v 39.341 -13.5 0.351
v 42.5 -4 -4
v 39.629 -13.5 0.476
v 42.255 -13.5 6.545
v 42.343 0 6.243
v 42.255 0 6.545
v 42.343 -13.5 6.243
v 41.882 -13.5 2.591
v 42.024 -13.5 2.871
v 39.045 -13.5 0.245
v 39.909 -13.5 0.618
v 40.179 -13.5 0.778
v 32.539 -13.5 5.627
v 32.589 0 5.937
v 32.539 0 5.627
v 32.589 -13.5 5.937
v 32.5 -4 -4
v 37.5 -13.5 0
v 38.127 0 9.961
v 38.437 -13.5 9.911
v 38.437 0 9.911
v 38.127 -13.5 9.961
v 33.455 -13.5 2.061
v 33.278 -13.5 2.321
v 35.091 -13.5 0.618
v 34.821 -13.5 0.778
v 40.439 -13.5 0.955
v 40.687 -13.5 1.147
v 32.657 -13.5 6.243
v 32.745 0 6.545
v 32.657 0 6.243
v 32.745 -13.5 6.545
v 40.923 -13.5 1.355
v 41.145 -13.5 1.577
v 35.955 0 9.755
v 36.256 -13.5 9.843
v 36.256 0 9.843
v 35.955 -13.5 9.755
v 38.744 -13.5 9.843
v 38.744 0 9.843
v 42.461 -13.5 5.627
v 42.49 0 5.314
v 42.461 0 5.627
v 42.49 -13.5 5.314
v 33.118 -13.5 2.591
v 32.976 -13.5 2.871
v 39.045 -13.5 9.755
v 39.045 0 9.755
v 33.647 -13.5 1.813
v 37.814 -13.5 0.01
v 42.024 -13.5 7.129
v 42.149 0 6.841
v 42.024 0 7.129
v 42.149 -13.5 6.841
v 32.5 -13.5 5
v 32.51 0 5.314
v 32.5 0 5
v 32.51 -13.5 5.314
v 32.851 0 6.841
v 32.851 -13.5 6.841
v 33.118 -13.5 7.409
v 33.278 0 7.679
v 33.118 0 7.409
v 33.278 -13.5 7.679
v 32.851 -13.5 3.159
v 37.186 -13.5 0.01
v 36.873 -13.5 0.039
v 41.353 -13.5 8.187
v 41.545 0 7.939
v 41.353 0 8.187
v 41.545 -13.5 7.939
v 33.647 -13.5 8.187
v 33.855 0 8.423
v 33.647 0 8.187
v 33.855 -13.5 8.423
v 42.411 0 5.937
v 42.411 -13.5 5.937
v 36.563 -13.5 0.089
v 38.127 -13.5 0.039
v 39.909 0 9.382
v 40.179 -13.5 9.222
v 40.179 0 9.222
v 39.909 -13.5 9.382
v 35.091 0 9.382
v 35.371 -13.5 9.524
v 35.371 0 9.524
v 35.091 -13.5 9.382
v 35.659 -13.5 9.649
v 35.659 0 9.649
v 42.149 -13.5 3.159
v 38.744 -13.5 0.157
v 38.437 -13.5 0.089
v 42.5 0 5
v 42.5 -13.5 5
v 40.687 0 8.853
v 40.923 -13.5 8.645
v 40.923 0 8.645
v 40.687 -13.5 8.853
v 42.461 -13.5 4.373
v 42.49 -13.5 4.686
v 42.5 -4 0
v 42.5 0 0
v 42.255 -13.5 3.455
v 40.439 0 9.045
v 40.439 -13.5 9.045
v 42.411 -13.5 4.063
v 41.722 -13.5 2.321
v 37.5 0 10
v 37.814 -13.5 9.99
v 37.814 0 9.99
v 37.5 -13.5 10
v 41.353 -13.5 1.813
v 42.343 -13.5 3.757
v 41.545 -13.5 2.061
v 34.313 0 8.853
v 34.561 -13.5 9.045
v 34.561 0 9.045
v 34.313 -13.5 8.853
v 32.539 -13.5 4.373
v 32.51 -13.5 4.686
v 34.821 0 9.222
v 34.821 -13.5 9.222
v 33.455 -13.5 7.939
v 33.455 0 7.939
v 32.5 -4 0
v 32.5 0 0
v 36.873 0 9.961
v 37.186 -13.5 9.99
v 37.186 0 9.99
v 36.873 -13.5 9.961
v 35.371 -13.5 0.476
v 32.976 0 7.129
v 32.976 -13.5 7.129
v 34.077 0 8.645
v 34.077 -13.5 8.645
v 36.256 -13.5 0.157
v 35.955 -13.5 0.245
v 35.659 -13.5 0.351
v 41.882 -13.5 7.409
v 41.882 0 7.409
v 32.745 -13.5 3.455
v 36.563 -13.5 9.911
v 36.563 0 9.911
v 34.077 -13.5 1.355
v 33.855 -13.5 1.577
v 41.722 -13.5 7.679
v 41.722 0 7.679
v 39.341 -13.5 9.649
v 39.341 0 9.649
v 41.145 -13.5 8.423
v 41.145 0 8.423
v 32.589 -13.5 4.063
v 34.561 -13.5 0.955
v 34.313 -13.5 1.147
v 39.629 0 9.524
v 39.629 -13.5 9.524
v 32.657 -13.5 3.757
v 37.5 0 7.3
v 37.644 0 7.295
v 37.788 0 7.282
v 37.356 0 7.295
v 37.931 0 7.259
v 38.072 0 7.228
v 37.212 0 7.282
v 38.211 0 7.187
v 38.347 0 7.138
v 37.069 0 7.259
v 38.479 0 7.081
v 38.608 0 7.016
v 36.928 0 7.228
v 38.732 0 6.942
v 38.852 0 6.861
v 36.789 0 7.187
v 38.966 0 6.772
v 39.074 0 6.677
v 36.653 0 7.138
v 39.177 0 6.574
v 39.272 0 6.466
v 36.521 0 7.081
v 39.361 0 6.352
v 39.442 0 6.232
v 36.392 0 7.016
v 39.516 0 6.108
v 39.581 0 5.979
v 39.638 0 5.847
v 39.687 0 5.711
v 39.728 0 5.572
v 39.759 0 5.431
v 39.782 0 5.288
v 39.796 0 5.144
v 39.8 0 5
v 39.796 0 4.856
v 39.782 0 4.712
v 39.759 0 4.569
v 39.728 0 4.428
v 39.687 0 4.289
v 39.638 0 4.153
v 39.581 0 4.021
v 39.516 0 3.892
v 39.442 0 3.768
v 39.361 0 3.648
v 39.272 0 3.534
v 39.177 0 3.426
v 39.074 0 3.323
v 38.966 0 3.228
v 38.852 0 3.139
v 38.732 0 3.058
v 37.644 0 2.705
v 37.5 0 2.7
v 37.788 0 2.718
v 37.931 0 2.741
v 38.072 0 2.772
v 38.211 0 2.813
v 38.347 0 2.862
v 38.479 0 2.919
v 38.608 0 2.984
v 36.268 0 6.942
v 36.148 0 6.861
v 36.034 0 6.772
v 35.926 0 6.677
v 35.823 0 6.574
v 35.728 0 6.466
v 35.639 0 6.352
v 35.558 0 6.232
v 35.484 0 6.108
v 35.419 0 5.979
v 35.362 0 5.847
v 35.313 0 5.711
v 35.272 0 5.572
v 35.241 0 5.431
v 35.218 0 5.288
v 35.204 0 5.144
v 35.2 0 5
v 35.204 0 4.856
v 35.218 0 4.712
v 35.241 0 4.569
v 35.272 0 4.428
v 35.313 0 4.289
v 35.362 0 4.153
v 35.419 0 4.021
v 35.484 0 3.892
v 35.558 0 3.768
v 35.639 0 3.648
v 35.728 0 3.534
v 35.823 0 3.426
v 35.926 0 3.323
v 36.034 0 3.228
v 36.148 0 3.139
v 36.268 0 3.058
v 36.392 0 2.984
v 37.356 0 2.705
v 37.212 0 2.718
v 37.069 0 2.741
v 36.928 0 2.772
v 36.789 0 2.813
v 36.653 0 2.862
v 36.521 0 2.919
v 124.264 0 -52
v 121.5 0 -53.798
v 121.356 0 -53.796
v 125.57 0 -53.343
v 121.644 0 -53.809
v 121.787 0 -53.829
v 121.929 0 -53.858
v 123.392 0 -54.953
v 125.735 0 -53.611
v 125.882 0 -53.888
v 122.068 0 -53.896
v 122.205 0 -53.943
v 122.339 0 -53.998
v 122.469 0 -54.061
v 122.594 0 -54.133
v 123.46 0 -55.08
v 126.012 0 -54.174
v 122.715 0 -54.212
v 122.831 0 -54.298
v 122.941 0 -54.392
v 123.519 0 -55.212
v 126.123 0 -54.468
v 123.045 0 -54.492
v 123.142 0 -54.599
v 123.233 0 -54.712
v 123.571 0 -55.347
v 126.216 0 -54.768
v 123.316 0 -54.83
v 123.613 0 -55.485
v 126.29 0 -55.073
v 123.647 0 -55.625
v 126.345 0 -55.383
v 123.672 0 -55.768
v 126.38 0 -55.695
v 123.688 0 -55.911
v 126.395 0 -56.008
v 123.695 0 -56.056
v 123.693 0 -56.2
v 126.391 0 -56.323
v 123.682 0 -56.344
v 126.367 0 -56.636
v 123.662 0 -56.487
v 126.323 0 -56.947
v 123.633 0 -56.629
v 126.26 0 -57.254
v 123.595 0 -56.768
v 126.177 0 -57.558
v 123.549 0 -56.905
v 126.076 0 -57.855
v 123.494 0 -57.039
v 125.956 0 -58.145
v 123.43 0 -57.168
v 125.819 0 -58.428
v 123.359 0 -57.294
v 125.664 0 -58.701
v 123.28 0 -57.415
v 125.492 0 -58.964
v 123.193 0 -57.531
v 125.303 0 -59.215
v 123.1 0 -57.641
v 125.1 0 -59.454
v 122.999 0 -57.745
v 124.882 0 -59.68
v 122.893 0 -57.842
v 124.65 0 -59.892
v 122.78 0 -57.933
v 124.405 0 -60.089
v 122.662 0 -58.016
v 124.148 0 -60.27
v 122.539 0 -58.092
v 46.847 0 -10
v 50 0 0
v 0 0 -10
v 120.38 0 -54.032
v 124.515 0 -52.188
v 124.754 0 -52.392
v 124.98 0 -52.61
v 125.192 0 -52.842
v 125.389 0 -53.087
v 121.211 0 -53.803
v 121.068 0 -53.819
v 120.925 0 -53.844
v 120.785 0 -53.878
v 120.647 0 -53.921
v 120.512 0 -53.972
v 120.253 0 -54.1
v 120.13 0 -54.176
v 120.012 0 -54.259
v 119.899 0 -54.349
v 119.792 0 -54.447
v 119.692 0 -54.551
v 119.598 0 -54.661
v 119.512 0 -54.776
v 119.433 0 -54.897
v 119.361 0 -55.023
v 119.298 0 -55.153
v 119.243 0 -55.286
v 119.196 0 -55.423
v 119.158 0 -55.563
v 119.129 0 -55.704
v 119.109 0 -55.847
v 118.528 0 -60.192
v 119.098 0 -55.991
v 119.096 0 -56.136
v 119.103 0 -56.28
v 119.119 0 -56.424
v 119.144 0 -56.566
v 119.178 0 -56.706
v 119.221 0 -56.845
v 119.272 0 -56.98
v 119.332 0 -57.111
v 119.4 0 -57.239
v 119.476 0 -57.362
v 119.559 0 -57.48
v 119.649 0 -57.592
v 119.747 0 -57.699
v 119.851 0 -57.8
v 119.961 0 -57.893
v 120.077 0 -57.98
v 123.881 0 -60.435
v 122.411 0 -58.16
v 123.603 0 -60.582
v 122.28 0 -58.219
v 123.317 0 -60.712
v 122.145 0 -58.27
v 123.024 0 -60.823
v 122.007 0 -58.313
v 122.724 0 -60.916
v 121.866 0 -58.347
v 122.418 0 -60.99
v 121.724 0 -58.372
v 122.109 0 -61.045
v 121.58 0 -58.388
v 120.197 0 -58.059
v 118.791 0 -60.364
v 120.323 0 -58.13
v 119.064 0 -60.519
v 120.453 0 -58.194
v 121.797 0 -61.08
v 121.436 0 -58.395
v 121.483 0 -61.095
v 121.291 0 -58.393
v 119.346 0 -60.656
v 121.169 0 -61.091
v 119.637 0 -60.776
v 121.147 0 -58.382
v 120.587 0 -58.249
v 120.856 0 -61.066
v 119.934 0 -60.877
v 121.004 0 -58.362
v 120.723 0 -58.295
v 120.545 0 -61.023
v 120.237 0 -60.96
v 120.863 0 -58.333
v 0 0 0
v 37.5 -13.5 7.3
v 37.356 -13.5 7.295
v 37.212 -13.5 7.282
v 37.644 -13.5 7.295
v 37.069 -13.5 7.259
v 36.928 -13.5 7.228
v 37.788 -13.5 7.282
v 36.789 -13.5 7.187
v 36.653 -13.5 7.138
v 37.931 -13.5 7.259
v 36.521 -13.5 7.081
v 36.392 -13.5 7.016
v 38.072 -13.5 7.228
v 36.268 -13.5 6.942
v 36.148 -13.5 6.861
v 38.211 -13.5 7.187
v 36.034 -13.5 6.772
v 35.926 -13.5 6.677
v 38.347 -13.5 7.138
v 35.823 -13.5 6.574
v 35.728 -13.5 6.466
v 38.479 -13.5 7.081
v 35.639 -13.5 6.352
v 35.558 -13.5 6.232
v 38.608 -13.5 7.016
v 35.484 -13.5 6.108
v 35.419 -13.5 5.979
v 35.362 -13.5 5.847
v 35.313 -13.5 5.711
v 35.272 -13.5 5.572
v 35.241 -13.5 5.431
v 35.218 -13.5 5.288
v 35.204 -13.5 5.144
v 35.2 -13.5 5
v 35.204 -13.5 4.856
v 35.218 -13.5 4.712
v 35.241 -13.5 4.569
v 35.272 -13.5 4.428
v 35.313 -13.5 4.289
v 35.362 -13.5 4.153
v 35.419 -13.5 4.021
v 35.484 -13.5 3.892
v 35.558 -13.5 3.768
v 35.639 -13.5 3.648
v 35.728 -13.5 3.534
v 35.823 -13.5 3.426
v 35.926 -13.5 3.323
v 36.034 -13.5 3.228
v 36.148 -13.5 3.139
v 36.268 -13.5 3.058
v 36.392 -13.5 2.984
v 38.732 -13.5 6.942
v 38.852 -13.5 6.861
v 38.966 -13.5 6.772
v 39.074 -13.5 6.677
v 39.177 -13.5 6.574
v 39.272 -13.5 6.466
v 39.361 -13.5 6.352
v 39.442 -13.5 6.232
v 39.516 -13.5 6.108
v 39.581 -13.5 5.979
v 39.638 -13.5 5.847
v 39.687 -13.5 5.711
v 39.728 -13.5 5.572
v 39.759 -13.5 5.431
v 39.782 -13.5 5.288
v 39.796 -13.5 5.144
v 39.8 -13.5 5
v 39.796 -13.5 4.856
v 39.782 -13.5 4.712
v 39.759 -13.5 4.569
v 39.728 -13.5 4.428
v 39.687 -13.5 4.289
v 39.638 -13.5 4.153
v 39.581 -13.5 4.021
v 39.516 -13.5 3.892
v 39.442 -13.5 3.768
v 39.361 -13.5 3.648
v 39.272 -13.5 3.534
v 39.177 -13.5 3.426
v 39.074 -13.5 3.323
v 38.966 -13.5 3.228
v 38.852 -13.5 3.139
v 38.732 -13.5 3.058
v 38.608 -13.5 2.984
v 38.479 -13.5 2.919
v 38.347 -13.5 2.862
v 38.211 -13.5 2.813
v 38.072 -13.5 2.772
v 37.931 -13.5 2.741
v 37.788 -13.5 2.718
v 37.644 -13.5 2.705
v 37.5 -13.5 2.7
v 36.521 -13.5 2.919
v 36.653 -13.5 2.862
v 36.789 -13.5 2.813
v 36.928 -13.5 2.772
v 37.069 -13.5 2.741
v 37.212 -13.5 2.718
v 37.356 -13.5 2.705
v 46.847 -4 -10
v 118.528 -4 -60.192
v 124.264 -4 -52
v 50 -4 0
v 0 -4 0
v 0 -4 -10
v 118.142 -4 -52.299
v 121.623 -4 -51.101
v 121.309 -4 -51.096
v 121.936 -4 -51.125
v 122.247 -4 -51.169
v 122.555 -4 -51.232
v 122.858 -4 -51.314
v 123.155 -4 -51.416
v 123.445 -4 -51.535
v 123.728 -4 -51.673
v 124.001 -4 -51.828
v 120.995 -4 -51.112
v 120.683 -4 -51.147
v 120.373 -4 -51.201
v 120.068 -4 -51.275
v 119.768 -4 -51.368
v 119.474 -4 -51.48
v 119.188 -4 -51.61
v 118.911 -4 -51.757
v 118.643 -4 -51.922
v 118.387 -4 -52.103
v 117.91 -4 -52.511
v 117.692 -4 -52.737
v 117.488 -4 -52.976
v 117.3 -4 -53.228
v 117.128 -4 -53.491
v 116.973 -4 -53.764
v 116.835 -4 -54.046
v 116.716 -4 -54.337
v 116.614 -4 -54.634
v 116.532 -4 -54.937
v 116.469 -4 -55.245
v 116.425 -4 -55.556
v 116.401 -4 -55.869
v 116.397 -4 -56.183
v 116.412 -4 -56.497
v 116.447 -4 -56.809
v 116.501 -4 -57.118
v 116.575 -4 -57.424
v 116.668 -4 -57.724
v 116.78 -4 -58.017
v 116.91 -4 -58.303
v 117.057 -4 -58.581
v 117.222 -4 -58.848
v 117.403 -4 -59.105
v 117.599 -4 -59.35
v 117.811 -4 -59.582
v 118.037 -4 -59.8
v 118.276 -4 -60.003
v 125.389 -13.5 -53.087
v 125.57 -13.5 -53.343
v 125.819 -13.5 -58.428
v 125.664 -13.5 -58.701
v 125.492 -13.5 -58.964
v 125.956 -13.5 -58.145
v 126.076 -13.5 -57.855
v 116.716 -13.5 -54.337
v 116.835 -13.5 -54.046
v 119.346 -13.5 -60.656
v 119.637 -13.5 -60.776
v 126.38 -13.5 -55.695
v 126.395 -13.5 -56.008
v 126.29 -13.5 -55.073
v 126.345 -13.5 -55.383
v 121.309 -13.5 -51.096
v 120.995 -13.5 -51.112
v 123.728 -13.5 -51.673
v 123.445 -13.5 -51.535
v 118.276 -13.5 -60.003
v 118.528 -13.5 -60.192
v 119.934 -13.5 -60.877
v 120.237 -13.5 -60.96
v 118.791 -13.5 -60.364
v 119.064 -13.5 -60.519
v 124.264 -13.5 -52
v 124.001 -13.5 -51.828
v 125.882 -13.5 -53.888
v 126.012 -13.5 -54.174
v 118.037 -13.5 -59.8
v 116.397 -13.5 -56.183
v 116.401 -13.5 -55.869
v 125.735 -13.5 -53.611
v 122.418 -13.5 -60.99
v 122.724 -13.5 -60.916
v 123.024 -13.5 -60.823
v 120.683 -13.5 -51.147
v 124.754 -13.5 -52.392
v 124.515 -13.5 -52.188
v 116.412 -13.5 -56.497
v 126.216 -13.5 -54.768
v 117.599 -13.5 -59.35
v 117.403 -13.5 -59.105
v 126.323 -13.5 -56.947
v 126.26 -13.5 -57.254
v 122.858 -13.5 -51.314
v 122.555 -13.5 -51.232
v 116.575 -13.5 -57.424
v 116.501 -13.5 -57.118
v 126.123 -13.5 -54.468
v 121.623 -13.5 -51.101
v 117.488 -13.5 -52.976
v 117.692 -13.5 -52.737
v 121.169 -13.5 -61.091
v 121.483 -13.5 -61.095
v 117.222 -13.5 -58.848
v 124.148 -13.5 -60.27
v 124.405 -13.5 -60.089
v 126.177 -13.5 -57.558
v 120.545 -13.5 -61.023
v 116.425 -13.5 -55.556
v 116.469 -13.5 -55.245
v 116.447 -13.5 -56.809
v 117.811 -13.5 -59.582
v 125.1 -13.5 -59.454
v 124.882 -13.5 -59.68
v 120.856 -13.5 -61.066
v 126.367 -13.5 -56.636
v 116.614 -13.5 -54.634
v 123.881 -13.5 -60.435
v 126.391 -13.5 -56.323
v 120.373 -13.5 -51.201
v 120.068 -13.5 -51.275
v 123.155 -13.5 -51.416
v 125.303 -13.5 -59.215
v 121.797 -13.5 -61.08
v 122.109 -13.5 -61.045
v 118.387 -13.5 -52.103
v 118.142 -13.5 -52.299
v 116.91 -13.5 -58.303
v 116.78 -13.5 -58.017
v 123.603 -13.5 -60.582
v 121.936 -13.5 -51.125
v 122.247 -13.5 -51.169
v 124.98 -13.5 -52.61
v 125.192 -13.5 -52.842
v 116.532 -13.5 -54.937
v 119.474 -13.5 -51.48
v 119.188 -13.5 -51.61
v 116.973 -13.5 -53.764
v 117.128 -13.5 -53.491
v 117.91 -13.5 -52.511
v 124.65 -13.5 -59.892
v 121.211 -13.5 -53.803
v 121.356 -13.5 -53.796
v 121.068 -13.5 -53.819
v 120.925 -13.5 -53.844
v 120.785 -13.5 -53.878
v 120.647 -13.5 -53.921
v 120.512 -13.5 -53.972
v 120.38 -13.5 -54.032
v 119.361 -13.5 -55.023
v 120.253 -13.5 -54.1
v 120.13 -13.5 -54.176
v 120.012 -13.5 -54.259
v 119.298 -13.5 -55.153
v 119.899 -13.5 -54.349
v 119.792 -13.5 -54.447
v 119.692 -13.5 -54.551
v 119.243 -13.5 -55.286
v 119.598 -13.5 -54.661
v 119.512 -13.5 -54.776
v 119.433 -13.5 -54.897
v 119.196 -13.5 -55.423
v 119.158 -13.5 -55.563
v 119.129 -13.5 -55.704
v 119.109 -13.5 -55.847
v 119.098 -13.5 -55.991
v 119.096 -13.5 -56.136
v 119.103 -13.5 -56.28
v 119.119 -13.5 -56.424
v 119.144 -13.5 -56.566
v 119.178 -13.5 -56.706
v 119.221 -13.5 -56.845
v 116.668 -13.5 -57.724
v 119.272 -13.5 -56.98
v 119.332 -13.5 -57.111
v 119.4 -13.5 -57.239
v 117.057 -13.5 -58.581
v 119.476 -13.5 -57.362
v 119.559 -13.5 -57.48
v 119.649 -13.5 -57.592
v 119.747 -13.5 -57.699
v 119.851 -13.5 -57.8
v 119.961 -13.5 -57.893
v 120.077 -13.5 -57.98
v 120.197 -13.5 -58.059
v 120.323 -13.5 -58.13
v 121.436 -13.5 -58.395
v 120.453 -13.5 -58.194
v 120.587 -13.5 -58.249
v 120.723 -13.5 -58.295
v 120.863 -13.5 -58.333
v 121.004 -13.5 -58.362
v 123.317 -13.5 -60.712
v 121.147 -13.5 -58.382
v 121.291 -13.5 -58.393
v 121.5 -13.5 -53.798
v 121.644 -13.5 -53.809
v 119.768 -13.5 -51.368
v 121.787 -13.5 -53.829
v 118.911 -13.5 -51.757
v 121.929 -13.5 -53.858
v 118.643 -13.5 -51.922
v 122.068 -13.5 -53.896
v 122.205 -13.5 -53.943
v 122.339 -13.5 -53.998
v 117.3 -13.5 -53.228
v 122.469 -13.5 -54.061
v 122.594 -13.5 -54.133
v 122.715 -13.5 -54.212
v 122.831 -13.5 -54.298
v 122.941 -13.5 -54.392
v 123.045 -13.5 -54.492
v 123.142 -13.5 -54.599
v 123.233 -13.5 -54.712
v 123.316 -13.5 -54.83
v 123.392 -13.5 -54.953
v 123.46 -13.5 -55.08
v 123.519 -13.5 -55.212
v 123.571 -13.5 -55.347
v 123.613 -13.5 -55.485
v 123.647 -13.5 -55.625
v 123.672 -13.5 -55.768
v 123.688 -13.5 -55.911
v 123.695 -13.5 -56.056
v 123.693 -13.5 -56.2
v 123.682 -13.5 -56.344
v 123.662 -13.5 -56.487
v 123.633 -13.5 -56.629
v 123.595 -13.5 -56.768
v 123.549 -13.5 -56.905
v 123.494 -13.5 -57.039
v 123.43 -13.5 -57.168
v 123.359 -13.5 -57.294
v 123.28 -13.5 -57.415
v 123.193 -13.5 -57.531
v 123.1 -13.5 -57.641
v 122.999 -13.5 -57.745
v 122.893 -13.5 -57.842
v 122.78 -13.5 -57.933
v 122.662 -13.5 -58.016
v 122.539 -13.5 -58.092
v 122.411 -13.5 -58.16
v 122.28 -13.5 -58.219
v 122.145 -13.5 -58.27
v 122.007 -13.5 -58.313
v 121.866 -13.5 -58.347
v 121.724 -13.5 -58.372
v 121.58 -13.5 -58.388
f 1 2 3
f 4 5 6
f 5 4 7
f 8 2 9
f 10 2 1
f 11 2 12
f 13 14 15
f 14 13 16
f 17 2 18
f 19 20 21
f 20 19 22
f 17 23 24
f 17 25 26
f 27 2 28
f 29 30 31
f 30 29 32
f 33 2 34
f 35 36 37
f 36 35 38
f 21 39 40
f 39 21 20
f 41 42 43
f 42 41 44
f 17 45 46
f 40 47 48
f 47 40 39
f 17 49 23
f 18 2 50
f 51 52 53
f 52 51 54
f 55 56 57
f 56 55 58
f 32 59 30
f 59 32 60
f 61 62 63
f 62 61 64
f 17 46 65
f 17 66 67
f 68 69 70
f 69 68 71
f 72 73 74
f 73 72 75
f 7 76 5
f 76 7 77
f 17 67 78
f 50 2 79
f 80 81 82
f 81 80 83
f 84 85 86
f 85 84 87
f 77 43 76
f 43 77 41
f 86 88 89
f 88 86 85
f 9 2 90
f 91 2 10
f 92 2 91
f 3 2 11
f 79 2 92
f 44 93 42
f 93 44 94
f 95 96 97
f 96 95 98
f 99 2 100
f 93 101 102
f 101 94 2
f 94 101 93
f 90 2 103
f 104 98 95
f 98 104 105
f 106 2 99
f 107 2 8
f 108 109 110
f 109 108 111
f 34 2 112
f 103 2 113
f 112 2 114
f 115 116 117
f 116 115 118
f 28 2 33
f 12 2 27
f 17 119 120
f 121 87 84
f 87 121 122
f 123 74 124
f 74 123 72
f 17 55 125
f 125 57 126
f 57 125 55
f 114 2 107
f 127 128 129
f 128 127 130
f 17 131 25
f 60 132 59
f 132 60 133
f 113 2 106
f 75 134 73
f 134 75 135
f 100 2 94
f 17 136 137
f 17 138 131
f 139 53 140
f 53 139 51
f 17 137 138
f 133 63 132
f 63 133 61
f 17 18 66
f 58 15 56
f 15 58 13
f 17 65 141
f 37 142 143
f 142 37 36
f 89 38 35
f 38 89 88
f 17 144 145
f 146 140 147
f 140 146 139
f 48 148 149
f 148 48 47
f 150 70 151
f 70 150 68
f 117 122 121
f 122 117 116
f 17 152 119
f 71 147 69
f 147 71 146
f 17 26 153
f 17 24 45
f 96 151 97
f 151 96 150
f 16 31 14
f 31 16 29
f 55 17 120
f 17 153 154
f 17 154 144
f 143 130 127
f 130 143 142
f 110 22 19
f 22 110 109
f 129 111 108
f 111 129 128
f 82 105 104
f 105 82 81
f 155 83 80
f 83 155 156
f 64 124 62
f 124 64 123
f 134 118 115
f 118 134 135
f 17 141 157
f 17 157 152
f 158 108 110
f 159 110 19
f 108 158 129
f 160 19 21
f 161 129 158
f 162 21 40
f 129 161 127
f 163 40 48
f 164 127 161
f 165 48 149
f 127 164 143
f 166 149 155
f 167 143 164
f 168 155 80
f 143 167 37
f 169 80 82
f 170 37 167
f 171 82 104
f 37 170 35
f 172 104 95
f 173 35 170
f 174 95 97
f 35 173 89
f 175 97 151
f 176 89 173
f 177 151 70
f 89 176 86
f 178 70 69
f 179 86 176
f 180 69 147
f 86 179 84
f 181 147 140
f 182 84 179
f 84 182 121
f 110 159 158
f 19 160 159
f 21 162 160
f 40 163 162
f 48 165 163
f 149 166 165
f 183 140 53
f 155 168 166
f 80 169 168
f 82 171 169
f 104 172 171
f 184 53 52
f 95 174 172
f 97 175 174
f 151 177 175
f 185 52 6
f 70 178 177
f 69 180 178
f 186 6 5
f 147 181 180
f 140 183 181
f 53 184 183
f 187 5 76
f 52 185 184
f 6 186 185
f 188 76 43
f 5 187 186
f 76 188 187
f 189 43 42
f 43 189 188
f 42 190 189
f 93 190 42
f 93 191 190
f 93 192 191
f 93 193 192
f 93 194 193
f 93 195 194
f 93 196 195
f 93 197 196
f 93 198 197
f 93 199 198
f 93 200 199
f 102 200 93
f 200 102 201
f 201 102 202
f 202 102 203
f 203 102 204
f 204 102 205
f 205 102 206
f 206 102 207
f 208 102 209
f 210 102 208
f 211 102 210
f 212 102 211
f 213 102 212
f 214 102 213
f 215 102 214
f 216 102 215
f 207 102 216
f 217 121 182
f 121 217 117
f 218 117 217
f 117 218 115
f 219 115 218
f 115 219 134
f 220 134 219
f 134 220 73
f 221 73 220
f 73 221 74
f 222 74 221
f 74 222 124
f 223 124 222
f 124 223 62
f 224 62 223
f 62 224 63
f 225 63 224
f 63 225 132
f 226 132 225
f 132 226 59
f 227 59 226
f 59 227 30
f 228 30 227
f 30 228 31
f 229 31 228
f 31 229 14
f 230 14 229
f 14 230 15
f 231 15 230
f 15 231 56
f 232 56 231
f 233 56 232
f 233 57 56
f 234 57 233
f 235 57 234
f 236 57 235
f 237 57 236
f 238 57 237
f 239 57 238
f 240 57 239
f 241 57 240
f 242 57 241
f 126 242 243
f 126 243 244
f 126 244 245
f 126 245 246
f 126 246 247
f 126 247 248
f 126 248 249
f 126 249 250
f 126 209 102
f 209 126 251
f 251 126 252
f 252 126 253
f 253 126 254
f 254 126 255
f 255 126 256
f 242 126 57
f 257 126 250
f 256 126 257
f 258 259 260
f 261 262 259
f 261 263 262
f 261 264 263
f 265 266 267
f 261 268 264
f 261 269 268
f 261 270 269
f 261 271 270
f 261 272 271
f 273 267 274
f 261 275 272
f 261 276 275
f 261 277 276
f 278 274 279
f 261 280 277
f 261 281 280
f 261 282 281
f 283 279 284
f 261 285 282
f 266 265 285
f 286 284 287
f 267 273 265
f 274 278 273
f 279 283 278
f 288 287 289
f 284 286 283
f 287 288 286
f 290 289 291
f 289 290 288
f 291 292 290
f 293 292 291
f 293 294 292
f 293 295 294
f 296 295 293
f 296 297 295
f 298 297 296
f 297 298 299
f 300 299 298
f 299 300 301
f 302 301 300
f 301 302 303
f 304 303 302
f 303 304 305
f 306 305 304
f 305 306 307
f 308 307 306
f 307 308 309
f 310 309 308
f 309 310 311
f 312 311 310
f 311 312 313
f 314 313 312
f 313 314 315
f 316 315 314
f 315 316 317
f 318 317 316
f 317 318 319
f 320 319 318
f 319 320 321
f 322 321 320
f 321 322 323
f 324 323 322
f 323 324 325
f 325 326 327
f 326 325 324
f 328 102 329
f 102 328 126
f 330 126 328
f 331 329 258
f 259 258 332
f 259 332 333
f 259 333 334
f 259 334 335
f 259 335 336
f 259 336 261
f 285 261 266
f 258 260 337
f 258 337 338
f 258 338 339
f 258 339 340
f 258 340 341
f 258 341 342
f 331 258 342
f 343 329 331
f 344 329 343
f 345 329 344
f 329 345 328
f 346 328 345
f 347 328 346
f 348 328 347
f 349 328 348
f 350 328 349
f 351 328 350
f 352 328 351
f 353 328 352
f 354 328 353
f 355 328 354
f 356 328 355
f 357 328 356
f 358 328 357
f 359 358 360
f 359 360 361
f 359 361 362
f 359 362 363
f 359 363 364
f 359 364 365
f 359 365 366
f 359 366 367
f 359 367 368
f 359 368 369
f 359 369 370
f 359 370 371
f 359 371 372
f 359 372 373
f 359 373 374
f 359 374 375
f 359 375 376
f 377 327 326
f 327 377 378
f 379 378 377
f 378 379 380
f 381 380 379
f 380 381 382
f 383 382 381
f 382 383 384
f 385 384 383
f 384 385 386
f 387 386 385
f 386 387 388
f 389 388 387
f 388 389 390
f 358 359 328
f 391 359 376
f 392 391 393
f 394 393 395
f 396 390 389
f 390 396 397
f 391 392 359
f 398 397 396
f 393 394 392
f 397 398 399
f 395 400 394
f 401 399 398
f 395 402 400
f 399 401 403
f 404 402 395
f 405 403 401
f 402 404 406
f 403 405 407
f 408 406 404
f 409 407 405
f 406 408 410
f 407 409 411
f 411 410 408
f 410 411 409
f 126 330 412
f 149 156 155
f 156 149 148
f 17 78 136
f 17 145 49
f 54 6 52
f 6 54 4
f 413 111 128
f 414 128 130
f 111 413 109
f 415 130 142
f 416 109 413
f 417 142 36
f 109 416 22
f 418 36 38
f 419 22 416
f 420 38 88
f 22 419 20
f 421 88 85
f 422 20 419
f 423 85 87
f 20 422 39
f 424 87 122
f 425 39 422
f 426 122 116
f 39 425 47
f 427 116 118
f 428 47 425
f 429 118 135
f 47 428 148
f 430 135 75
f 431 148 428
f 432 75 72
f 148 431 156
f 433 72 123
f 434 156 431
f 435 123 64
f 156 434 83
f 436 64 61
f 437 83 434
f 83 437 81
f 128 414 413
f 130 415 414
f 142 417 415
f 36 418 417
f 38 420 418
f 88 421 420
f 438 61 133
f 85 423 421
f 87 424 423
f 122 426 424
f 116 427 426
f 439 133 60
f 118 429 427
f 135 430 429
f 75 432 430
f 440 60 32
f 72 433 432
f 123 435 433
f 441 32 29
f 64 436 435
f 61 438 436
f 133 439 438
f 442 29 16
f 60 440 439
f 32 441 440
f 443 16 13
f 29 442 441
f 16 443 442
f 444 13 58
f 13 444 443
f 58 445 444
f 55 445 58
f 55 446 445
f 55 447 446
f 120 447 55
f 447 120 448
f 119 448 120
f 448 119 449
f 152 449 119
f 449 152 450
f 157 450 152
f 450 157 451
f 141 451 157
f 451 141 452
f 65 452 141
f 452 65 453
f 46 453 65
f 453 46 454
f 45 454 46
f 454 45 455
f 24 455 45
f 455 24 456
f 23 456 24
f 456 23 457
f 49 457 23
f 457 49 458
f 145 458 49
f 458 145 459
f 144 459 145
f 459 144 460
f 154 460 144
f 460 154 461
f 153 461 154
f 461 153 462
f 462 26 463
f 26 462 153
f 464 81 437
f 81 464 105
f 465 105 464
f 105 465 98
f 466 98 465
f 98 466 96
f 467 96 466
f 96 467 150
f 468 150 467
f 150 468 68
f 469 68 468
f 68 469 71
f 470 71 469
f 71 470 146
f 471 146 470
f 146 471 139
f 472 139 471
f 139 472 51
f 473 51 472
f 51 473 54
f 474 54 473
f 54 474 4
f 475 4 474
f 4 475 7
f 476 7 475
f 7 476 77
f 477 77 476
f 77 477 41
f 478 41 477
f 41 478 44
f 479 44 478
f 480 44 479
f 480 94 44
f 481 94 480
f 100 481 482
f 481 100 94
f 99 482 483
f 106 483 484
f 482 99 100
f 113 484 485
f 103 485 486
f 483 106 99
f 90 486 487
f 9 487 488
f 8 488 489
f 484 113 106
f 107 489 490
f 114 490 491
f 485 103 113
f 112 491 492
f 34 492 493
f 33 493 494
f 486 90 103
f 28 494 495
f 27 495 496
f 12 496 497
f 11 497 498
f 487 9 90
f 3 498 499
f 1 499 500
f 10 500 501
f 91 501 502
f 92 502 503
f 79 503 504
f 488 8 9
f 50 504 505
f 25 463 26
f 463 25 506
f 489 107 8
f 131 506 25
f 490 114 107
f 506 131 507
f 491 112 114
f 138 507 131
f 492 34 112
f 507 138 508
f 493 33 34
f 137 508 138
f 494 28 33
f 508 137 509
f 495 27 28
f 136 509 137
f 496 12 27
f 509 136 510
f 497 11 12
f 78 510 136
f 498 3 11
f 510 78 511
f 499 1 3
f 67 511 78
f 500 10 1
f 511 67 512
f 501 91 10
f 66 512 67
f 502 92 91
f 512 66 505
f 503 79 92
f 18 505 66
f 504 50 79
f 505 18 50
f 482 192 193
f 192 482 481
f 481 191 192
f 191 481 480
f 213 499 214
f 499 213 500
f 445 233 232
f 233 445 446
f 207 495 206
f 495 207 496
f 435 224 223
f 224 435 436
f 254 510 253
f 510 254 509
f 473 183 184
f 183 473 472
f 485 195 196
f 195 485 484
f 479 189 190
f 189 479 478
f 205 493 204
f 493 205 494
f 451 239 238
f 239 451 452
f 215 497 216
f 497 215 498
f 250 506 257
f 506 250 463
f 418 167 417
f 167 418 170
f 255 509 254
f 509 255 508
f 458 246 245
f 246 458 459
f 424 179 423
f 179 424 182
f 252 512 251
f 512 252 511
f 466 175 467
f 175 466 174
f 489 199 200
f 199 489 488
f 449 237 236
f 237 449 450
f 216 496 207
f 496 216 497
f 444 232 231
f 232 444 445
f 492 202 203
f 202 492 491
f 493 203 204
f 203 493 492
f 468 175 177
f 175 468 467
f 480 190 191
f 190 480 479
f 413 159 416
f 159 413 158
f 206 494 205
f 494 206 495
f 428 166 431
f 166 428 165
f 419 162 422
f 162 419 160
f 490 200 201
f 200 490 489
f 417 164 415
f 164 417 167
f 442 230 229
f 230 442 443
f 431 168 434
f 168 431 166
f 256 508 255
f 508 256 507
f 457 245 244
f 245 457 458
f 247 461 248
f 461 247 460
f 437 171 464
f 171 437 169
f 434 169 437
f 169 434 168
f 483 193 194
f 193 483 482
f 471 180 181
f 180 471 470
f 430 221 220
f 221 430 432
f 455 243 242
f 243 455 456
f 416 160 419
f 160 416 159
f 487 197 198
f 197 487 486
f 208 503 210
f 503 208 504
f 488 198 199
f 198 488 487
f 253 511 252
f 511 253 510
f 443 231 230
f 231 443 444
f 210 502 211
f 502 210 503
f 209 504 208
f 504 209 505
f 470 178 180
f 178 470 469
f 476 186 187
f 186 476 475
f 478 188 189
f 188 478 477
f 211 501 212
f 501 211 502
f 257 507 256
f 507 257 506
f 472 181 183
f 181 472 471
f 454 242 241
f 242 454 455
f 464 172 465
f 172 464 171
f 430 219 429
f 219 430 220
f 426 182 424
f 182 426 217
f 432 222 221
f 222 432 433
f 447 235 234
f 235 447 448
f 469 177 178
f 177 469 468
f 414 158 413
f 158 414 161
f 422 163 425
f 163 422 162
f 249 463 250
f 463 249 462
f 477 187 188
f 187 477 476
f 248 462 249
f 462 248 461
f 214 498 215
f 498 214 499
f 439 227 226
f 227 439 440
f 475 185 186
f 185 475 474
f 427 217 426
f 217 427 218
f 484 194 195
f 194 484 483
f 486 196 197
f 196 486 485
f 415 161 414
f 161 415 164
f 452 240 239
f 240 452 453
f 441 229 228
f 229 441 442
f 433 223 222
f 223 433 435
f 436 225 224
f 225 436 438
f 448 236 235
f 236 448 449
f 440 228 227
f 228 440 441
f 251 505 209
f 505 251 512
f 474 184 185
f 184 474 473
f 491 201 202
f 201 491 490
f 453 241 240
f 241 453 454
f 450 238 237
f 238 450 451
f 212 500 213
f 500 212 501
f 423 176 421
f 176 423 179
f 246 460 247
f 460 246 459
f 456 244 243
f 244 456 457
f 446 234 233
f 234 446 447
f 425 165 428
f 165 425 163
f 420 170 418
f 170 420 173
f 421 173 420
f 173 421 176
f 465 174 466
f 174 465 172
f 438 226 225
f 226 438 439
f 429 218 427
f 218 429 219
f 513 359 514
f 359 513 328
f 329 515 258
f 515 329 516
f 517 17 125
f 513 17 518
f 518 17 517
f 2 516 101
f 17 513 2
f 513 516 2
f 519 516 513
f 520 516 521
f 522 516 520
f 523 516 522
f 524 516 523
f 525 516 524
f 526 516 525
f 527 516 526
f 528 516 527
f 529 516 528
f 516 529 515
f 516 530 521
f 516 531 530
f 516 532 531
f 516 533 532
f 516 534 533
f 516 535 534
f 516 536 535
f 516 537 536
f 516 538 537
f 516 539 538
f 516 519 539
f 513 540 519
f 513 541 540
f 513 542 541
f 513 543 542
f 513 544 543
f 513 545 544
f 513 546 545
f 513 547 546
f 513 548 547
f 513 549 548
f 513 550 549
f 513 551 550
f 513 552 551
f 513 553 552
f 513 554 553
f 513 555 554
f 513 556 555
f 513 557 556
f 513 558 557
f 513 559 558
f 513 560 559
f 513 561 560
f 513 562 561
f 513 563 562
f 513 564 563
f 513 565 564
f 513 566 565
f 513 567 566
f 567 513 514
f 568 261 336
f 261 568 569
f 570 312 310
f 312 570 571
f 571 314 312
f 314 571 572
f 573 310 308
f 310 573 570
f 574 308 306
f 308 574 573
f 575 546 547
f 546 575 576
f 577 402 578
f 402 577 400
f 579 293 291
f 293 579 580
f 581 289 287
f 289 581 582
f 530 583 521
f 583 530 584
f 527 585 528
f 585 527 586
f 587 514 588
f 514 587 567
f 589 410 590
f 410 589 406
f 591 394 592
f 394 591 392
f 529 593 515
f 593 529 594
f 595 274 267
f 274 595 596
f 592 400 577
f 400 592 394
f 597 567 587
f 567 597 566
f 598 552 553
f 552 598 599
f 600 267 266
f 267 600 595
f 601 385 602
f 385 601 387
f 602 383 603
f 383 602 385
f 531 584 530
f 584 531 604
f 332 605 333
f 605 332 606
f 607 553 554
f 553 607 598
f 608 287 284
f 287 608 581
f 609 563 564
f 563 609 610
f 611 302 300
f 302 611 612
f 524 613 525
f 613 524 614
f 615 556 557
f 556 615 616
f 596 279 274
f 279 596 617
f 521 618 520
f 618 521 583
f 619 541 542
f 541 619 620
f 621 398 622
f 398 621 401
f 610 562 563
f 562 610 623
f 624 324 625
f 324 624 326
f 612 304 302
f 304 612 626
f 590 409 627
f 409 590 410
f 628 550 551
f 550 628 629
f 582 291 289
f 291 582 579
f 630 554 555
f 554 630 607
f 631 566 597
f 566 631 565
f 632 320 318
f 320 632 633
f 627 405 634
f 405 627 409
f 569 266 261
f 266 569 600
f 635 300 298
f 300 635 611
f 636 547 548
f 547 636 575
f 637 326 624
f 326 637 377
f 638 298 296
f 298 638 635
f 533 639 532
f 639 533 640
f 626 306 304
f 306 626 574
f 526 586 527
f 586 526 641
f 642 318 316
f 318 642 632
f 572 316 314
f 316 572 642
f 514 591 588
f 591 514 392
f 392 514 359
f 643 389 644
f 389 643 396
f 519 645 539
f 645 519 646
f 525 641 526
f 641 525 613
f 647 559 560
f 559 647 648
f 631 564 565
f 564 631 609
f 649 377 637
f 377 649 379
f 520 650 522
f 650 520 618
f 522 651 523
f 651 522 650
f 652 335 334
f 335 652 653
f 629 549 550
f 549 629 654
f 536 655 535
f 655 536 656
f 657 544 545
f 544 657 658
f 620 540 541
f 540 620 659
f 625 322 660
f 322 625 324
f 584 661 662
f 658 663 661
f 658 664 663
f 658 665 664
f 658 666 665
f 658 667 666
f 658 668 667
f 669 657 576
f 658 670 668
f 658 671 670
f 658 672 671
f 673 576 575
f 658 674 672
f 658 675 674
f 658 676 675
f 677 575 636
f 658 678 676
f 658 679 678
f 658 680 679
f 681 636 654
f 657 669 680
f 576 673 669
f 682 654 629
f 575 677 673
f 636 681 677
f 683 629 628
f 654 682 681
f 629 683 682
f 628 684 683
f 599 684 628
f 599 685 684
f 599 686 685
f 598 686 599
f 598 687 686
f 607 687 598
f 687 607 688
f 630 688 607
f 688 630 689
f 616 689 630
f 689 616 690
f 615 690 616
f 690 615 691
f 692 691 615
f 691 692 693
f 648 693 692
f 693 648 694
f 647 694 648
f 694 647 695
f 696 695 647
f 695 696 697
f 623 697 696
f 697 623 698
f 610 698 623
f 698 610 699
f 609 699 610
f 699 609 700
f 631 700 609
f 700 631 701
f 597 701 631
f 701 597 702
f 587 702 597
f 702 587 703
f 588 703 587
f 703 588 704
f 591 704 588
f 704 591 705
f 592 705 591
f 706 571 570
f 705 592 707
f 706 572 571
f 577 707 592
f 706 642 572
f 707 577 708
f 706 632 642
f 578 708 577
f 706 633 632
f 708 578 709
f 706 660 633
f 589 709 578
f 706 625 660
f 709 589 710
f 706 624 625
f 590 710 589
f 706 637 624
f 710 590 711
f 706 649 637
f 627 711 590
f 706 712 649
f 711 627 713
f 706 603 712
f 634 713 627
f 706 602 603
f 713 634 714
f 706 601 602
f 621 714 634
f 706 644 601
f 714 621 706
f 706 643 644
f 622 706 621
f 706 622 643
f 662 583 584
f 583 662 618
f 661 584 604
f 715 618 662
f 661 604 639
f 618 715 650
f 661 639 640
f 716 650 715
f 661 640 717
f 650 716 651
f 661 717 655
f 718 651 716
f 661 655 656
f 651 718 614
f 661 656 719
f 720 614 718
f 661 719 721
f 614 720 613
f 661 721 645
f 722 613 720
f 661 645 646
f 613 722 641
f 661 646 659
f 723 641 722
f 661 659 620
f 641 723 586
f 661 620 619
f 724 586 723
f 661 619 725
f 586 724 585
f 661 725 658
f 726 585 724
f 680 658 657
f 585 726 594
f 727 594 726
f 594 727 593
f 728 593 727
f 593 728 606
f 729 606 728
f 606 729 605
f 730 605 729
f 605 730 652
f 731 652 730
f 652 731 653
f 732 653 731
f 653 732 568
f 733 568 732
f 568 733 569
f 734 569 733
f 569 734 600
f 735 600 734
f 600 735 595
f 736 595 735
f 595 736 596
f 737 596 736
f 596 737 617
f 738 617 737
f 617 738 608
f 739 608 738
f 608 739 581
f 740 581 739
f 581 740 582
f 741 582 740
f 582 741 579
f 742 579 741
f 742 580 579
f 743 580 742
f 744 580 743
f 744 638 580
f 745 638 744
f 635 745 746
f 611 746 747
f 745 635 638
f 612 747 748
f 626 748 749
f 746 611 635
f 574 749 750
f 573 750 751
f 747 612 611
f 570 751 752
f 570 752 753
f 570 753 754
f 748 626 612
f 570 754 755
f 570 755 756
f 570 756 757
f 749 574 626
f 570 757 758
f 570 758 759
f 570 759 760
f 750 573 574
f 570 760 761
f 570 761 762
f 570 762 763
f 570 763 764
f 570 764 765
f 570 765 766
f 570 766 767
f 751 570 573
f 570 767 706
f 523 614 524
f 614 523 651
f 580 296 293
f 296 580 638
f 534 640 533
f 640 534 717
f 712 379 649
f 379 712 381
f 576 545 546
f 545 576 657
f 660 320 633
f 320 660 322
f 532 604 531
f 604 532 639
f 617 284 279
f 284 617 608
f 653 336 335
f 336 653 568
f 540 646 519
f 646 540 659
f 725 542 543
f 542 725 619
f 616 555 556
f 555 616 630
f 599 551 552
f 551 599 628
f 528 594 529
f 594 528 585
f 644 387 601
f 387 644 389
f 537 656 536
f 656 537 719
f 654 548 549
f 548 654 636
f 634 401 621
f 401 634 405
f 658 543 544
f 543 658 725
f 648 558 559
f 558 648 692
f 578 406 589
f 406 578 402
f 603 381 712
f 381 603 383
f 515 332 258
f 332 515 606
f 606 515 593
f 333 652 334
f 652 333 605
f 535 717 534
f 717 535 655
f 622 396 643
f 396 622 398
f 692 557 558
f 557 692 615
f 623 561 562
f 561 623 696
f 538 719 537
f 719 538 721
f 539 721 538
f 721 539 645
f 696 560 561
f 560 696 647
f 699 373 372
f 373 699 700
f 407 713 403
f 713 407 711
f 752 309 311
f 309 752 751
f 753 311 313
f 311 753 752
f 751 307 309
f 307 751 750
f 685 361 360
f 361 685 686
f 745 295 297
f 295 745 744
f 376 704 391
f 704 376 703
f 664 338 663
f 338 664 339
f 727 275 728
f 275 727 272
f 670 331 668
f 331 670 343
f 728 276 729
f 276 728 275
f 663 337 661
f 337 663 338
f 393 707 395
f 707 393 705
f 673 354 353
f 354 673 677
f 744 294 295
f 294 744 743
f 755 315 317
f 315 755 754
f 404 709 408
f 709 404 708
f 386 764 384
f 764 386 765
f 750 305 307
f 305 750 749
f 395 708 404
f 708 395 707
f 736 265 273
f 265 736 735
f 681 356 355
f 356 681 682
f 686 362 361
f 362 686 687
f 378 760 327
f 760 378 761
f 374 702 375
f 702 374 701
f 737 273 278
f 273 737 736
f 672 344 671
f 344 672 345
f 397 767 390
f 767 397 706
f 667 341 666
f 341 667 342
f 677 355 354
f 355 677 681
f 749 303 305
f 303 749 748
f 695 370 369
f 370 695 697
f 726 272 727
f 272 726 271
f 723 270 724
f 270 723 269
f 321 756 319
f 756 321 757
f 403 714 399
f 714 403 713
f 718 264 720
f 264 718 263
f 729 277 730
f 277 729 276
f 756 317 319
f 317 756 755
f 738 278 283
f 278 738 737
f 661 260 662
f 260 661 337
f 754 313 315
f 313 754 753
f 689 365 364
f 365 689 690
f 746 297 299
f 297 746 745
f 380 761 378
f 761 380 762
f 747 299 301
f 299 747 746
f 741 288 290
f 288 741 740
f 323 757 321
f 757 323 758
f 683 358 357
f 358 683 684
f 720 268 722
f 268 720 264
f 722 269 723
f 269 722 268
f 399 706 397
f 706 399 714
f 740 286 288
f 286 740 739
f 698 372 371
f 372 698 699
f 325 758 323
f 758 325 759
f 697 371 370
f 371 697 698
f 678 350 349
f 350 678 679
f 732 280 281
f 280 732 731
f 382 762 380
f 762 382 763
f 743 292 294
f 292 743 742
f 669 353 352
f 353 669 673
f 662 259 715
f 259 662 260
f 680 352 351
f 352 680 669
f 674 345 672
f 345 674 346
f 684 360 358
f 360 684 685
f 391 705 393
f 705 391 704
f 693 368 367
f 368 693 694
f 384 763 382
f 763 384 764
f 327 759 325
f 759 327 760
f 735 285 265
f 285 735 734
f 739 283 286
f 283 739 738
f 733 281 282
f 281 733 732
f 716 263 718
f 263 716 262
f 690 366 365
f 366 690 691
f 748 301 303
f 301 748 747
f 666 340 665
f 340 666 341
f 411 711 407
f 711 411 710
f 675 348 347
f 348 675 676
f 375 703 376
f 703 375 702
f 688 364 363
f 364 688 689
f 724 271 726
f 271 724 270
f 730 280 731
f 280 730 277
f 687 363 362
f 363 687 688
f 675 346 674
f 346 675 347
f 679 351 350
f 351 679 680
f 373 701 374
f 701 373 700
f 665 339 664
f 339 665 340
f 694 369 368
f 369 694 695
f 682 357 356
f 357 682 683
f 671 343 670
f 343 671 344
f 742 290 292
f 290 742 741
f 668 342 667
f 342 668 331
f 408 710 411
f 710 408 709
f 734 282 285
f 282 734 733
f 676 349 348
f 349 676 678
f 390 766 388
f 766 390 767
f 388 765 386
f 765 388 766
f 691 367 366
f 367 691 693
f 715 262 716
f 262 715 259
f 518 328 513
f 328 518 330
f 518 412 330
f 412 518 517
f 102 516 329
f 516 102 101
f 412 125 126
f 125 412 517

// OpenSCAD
width = 9.5;
angle = 35;
height = 52;

size = 10;
l0 = 13;
turn = 50;
th = 4;
hole = 2.3;

hindge_width = 7;
hindge_margen = 1.5;

hindge_gap = 24.5;
hindge_height = 13.5;

realy_big = 1000;

$fn = 100;
mirror([0, 1, 0]) union(){
    translate([l0 + hindge_gap, 0, 0]) difference(){
        hull(){
            translate([0, 0, size/2]) rotate([-90, 0, 0]) cylinder(th + width, size/2, size/2);
            translate([-size/2, 0, 0]) mirror([0, 0, 1]) cube([size, th, th]);
        }
        translate([0, 0, size/2]) rotate([-90, 0, 0]) cylinder(th + width, hole, hole);
    }
    mirror([0, 0, 1]) cube([turn, th, size]);
    translate([turn, 0, 0]) mirror([0, 0, 1]) rotate([0, -angle, 0]) difference(){
        union(){
            cube([height/sin(angle), th, size]);
            translate([height/sin(angle), 0, size/2]) rotate([-90, 0, 0]) cylinder(th + width, size/2, size/2);
        }
        translate([height/sin(angle), 0, size/2]) rotate([-90, 0, 0]) cylinder(th + width, hole, hole);
    }
}
